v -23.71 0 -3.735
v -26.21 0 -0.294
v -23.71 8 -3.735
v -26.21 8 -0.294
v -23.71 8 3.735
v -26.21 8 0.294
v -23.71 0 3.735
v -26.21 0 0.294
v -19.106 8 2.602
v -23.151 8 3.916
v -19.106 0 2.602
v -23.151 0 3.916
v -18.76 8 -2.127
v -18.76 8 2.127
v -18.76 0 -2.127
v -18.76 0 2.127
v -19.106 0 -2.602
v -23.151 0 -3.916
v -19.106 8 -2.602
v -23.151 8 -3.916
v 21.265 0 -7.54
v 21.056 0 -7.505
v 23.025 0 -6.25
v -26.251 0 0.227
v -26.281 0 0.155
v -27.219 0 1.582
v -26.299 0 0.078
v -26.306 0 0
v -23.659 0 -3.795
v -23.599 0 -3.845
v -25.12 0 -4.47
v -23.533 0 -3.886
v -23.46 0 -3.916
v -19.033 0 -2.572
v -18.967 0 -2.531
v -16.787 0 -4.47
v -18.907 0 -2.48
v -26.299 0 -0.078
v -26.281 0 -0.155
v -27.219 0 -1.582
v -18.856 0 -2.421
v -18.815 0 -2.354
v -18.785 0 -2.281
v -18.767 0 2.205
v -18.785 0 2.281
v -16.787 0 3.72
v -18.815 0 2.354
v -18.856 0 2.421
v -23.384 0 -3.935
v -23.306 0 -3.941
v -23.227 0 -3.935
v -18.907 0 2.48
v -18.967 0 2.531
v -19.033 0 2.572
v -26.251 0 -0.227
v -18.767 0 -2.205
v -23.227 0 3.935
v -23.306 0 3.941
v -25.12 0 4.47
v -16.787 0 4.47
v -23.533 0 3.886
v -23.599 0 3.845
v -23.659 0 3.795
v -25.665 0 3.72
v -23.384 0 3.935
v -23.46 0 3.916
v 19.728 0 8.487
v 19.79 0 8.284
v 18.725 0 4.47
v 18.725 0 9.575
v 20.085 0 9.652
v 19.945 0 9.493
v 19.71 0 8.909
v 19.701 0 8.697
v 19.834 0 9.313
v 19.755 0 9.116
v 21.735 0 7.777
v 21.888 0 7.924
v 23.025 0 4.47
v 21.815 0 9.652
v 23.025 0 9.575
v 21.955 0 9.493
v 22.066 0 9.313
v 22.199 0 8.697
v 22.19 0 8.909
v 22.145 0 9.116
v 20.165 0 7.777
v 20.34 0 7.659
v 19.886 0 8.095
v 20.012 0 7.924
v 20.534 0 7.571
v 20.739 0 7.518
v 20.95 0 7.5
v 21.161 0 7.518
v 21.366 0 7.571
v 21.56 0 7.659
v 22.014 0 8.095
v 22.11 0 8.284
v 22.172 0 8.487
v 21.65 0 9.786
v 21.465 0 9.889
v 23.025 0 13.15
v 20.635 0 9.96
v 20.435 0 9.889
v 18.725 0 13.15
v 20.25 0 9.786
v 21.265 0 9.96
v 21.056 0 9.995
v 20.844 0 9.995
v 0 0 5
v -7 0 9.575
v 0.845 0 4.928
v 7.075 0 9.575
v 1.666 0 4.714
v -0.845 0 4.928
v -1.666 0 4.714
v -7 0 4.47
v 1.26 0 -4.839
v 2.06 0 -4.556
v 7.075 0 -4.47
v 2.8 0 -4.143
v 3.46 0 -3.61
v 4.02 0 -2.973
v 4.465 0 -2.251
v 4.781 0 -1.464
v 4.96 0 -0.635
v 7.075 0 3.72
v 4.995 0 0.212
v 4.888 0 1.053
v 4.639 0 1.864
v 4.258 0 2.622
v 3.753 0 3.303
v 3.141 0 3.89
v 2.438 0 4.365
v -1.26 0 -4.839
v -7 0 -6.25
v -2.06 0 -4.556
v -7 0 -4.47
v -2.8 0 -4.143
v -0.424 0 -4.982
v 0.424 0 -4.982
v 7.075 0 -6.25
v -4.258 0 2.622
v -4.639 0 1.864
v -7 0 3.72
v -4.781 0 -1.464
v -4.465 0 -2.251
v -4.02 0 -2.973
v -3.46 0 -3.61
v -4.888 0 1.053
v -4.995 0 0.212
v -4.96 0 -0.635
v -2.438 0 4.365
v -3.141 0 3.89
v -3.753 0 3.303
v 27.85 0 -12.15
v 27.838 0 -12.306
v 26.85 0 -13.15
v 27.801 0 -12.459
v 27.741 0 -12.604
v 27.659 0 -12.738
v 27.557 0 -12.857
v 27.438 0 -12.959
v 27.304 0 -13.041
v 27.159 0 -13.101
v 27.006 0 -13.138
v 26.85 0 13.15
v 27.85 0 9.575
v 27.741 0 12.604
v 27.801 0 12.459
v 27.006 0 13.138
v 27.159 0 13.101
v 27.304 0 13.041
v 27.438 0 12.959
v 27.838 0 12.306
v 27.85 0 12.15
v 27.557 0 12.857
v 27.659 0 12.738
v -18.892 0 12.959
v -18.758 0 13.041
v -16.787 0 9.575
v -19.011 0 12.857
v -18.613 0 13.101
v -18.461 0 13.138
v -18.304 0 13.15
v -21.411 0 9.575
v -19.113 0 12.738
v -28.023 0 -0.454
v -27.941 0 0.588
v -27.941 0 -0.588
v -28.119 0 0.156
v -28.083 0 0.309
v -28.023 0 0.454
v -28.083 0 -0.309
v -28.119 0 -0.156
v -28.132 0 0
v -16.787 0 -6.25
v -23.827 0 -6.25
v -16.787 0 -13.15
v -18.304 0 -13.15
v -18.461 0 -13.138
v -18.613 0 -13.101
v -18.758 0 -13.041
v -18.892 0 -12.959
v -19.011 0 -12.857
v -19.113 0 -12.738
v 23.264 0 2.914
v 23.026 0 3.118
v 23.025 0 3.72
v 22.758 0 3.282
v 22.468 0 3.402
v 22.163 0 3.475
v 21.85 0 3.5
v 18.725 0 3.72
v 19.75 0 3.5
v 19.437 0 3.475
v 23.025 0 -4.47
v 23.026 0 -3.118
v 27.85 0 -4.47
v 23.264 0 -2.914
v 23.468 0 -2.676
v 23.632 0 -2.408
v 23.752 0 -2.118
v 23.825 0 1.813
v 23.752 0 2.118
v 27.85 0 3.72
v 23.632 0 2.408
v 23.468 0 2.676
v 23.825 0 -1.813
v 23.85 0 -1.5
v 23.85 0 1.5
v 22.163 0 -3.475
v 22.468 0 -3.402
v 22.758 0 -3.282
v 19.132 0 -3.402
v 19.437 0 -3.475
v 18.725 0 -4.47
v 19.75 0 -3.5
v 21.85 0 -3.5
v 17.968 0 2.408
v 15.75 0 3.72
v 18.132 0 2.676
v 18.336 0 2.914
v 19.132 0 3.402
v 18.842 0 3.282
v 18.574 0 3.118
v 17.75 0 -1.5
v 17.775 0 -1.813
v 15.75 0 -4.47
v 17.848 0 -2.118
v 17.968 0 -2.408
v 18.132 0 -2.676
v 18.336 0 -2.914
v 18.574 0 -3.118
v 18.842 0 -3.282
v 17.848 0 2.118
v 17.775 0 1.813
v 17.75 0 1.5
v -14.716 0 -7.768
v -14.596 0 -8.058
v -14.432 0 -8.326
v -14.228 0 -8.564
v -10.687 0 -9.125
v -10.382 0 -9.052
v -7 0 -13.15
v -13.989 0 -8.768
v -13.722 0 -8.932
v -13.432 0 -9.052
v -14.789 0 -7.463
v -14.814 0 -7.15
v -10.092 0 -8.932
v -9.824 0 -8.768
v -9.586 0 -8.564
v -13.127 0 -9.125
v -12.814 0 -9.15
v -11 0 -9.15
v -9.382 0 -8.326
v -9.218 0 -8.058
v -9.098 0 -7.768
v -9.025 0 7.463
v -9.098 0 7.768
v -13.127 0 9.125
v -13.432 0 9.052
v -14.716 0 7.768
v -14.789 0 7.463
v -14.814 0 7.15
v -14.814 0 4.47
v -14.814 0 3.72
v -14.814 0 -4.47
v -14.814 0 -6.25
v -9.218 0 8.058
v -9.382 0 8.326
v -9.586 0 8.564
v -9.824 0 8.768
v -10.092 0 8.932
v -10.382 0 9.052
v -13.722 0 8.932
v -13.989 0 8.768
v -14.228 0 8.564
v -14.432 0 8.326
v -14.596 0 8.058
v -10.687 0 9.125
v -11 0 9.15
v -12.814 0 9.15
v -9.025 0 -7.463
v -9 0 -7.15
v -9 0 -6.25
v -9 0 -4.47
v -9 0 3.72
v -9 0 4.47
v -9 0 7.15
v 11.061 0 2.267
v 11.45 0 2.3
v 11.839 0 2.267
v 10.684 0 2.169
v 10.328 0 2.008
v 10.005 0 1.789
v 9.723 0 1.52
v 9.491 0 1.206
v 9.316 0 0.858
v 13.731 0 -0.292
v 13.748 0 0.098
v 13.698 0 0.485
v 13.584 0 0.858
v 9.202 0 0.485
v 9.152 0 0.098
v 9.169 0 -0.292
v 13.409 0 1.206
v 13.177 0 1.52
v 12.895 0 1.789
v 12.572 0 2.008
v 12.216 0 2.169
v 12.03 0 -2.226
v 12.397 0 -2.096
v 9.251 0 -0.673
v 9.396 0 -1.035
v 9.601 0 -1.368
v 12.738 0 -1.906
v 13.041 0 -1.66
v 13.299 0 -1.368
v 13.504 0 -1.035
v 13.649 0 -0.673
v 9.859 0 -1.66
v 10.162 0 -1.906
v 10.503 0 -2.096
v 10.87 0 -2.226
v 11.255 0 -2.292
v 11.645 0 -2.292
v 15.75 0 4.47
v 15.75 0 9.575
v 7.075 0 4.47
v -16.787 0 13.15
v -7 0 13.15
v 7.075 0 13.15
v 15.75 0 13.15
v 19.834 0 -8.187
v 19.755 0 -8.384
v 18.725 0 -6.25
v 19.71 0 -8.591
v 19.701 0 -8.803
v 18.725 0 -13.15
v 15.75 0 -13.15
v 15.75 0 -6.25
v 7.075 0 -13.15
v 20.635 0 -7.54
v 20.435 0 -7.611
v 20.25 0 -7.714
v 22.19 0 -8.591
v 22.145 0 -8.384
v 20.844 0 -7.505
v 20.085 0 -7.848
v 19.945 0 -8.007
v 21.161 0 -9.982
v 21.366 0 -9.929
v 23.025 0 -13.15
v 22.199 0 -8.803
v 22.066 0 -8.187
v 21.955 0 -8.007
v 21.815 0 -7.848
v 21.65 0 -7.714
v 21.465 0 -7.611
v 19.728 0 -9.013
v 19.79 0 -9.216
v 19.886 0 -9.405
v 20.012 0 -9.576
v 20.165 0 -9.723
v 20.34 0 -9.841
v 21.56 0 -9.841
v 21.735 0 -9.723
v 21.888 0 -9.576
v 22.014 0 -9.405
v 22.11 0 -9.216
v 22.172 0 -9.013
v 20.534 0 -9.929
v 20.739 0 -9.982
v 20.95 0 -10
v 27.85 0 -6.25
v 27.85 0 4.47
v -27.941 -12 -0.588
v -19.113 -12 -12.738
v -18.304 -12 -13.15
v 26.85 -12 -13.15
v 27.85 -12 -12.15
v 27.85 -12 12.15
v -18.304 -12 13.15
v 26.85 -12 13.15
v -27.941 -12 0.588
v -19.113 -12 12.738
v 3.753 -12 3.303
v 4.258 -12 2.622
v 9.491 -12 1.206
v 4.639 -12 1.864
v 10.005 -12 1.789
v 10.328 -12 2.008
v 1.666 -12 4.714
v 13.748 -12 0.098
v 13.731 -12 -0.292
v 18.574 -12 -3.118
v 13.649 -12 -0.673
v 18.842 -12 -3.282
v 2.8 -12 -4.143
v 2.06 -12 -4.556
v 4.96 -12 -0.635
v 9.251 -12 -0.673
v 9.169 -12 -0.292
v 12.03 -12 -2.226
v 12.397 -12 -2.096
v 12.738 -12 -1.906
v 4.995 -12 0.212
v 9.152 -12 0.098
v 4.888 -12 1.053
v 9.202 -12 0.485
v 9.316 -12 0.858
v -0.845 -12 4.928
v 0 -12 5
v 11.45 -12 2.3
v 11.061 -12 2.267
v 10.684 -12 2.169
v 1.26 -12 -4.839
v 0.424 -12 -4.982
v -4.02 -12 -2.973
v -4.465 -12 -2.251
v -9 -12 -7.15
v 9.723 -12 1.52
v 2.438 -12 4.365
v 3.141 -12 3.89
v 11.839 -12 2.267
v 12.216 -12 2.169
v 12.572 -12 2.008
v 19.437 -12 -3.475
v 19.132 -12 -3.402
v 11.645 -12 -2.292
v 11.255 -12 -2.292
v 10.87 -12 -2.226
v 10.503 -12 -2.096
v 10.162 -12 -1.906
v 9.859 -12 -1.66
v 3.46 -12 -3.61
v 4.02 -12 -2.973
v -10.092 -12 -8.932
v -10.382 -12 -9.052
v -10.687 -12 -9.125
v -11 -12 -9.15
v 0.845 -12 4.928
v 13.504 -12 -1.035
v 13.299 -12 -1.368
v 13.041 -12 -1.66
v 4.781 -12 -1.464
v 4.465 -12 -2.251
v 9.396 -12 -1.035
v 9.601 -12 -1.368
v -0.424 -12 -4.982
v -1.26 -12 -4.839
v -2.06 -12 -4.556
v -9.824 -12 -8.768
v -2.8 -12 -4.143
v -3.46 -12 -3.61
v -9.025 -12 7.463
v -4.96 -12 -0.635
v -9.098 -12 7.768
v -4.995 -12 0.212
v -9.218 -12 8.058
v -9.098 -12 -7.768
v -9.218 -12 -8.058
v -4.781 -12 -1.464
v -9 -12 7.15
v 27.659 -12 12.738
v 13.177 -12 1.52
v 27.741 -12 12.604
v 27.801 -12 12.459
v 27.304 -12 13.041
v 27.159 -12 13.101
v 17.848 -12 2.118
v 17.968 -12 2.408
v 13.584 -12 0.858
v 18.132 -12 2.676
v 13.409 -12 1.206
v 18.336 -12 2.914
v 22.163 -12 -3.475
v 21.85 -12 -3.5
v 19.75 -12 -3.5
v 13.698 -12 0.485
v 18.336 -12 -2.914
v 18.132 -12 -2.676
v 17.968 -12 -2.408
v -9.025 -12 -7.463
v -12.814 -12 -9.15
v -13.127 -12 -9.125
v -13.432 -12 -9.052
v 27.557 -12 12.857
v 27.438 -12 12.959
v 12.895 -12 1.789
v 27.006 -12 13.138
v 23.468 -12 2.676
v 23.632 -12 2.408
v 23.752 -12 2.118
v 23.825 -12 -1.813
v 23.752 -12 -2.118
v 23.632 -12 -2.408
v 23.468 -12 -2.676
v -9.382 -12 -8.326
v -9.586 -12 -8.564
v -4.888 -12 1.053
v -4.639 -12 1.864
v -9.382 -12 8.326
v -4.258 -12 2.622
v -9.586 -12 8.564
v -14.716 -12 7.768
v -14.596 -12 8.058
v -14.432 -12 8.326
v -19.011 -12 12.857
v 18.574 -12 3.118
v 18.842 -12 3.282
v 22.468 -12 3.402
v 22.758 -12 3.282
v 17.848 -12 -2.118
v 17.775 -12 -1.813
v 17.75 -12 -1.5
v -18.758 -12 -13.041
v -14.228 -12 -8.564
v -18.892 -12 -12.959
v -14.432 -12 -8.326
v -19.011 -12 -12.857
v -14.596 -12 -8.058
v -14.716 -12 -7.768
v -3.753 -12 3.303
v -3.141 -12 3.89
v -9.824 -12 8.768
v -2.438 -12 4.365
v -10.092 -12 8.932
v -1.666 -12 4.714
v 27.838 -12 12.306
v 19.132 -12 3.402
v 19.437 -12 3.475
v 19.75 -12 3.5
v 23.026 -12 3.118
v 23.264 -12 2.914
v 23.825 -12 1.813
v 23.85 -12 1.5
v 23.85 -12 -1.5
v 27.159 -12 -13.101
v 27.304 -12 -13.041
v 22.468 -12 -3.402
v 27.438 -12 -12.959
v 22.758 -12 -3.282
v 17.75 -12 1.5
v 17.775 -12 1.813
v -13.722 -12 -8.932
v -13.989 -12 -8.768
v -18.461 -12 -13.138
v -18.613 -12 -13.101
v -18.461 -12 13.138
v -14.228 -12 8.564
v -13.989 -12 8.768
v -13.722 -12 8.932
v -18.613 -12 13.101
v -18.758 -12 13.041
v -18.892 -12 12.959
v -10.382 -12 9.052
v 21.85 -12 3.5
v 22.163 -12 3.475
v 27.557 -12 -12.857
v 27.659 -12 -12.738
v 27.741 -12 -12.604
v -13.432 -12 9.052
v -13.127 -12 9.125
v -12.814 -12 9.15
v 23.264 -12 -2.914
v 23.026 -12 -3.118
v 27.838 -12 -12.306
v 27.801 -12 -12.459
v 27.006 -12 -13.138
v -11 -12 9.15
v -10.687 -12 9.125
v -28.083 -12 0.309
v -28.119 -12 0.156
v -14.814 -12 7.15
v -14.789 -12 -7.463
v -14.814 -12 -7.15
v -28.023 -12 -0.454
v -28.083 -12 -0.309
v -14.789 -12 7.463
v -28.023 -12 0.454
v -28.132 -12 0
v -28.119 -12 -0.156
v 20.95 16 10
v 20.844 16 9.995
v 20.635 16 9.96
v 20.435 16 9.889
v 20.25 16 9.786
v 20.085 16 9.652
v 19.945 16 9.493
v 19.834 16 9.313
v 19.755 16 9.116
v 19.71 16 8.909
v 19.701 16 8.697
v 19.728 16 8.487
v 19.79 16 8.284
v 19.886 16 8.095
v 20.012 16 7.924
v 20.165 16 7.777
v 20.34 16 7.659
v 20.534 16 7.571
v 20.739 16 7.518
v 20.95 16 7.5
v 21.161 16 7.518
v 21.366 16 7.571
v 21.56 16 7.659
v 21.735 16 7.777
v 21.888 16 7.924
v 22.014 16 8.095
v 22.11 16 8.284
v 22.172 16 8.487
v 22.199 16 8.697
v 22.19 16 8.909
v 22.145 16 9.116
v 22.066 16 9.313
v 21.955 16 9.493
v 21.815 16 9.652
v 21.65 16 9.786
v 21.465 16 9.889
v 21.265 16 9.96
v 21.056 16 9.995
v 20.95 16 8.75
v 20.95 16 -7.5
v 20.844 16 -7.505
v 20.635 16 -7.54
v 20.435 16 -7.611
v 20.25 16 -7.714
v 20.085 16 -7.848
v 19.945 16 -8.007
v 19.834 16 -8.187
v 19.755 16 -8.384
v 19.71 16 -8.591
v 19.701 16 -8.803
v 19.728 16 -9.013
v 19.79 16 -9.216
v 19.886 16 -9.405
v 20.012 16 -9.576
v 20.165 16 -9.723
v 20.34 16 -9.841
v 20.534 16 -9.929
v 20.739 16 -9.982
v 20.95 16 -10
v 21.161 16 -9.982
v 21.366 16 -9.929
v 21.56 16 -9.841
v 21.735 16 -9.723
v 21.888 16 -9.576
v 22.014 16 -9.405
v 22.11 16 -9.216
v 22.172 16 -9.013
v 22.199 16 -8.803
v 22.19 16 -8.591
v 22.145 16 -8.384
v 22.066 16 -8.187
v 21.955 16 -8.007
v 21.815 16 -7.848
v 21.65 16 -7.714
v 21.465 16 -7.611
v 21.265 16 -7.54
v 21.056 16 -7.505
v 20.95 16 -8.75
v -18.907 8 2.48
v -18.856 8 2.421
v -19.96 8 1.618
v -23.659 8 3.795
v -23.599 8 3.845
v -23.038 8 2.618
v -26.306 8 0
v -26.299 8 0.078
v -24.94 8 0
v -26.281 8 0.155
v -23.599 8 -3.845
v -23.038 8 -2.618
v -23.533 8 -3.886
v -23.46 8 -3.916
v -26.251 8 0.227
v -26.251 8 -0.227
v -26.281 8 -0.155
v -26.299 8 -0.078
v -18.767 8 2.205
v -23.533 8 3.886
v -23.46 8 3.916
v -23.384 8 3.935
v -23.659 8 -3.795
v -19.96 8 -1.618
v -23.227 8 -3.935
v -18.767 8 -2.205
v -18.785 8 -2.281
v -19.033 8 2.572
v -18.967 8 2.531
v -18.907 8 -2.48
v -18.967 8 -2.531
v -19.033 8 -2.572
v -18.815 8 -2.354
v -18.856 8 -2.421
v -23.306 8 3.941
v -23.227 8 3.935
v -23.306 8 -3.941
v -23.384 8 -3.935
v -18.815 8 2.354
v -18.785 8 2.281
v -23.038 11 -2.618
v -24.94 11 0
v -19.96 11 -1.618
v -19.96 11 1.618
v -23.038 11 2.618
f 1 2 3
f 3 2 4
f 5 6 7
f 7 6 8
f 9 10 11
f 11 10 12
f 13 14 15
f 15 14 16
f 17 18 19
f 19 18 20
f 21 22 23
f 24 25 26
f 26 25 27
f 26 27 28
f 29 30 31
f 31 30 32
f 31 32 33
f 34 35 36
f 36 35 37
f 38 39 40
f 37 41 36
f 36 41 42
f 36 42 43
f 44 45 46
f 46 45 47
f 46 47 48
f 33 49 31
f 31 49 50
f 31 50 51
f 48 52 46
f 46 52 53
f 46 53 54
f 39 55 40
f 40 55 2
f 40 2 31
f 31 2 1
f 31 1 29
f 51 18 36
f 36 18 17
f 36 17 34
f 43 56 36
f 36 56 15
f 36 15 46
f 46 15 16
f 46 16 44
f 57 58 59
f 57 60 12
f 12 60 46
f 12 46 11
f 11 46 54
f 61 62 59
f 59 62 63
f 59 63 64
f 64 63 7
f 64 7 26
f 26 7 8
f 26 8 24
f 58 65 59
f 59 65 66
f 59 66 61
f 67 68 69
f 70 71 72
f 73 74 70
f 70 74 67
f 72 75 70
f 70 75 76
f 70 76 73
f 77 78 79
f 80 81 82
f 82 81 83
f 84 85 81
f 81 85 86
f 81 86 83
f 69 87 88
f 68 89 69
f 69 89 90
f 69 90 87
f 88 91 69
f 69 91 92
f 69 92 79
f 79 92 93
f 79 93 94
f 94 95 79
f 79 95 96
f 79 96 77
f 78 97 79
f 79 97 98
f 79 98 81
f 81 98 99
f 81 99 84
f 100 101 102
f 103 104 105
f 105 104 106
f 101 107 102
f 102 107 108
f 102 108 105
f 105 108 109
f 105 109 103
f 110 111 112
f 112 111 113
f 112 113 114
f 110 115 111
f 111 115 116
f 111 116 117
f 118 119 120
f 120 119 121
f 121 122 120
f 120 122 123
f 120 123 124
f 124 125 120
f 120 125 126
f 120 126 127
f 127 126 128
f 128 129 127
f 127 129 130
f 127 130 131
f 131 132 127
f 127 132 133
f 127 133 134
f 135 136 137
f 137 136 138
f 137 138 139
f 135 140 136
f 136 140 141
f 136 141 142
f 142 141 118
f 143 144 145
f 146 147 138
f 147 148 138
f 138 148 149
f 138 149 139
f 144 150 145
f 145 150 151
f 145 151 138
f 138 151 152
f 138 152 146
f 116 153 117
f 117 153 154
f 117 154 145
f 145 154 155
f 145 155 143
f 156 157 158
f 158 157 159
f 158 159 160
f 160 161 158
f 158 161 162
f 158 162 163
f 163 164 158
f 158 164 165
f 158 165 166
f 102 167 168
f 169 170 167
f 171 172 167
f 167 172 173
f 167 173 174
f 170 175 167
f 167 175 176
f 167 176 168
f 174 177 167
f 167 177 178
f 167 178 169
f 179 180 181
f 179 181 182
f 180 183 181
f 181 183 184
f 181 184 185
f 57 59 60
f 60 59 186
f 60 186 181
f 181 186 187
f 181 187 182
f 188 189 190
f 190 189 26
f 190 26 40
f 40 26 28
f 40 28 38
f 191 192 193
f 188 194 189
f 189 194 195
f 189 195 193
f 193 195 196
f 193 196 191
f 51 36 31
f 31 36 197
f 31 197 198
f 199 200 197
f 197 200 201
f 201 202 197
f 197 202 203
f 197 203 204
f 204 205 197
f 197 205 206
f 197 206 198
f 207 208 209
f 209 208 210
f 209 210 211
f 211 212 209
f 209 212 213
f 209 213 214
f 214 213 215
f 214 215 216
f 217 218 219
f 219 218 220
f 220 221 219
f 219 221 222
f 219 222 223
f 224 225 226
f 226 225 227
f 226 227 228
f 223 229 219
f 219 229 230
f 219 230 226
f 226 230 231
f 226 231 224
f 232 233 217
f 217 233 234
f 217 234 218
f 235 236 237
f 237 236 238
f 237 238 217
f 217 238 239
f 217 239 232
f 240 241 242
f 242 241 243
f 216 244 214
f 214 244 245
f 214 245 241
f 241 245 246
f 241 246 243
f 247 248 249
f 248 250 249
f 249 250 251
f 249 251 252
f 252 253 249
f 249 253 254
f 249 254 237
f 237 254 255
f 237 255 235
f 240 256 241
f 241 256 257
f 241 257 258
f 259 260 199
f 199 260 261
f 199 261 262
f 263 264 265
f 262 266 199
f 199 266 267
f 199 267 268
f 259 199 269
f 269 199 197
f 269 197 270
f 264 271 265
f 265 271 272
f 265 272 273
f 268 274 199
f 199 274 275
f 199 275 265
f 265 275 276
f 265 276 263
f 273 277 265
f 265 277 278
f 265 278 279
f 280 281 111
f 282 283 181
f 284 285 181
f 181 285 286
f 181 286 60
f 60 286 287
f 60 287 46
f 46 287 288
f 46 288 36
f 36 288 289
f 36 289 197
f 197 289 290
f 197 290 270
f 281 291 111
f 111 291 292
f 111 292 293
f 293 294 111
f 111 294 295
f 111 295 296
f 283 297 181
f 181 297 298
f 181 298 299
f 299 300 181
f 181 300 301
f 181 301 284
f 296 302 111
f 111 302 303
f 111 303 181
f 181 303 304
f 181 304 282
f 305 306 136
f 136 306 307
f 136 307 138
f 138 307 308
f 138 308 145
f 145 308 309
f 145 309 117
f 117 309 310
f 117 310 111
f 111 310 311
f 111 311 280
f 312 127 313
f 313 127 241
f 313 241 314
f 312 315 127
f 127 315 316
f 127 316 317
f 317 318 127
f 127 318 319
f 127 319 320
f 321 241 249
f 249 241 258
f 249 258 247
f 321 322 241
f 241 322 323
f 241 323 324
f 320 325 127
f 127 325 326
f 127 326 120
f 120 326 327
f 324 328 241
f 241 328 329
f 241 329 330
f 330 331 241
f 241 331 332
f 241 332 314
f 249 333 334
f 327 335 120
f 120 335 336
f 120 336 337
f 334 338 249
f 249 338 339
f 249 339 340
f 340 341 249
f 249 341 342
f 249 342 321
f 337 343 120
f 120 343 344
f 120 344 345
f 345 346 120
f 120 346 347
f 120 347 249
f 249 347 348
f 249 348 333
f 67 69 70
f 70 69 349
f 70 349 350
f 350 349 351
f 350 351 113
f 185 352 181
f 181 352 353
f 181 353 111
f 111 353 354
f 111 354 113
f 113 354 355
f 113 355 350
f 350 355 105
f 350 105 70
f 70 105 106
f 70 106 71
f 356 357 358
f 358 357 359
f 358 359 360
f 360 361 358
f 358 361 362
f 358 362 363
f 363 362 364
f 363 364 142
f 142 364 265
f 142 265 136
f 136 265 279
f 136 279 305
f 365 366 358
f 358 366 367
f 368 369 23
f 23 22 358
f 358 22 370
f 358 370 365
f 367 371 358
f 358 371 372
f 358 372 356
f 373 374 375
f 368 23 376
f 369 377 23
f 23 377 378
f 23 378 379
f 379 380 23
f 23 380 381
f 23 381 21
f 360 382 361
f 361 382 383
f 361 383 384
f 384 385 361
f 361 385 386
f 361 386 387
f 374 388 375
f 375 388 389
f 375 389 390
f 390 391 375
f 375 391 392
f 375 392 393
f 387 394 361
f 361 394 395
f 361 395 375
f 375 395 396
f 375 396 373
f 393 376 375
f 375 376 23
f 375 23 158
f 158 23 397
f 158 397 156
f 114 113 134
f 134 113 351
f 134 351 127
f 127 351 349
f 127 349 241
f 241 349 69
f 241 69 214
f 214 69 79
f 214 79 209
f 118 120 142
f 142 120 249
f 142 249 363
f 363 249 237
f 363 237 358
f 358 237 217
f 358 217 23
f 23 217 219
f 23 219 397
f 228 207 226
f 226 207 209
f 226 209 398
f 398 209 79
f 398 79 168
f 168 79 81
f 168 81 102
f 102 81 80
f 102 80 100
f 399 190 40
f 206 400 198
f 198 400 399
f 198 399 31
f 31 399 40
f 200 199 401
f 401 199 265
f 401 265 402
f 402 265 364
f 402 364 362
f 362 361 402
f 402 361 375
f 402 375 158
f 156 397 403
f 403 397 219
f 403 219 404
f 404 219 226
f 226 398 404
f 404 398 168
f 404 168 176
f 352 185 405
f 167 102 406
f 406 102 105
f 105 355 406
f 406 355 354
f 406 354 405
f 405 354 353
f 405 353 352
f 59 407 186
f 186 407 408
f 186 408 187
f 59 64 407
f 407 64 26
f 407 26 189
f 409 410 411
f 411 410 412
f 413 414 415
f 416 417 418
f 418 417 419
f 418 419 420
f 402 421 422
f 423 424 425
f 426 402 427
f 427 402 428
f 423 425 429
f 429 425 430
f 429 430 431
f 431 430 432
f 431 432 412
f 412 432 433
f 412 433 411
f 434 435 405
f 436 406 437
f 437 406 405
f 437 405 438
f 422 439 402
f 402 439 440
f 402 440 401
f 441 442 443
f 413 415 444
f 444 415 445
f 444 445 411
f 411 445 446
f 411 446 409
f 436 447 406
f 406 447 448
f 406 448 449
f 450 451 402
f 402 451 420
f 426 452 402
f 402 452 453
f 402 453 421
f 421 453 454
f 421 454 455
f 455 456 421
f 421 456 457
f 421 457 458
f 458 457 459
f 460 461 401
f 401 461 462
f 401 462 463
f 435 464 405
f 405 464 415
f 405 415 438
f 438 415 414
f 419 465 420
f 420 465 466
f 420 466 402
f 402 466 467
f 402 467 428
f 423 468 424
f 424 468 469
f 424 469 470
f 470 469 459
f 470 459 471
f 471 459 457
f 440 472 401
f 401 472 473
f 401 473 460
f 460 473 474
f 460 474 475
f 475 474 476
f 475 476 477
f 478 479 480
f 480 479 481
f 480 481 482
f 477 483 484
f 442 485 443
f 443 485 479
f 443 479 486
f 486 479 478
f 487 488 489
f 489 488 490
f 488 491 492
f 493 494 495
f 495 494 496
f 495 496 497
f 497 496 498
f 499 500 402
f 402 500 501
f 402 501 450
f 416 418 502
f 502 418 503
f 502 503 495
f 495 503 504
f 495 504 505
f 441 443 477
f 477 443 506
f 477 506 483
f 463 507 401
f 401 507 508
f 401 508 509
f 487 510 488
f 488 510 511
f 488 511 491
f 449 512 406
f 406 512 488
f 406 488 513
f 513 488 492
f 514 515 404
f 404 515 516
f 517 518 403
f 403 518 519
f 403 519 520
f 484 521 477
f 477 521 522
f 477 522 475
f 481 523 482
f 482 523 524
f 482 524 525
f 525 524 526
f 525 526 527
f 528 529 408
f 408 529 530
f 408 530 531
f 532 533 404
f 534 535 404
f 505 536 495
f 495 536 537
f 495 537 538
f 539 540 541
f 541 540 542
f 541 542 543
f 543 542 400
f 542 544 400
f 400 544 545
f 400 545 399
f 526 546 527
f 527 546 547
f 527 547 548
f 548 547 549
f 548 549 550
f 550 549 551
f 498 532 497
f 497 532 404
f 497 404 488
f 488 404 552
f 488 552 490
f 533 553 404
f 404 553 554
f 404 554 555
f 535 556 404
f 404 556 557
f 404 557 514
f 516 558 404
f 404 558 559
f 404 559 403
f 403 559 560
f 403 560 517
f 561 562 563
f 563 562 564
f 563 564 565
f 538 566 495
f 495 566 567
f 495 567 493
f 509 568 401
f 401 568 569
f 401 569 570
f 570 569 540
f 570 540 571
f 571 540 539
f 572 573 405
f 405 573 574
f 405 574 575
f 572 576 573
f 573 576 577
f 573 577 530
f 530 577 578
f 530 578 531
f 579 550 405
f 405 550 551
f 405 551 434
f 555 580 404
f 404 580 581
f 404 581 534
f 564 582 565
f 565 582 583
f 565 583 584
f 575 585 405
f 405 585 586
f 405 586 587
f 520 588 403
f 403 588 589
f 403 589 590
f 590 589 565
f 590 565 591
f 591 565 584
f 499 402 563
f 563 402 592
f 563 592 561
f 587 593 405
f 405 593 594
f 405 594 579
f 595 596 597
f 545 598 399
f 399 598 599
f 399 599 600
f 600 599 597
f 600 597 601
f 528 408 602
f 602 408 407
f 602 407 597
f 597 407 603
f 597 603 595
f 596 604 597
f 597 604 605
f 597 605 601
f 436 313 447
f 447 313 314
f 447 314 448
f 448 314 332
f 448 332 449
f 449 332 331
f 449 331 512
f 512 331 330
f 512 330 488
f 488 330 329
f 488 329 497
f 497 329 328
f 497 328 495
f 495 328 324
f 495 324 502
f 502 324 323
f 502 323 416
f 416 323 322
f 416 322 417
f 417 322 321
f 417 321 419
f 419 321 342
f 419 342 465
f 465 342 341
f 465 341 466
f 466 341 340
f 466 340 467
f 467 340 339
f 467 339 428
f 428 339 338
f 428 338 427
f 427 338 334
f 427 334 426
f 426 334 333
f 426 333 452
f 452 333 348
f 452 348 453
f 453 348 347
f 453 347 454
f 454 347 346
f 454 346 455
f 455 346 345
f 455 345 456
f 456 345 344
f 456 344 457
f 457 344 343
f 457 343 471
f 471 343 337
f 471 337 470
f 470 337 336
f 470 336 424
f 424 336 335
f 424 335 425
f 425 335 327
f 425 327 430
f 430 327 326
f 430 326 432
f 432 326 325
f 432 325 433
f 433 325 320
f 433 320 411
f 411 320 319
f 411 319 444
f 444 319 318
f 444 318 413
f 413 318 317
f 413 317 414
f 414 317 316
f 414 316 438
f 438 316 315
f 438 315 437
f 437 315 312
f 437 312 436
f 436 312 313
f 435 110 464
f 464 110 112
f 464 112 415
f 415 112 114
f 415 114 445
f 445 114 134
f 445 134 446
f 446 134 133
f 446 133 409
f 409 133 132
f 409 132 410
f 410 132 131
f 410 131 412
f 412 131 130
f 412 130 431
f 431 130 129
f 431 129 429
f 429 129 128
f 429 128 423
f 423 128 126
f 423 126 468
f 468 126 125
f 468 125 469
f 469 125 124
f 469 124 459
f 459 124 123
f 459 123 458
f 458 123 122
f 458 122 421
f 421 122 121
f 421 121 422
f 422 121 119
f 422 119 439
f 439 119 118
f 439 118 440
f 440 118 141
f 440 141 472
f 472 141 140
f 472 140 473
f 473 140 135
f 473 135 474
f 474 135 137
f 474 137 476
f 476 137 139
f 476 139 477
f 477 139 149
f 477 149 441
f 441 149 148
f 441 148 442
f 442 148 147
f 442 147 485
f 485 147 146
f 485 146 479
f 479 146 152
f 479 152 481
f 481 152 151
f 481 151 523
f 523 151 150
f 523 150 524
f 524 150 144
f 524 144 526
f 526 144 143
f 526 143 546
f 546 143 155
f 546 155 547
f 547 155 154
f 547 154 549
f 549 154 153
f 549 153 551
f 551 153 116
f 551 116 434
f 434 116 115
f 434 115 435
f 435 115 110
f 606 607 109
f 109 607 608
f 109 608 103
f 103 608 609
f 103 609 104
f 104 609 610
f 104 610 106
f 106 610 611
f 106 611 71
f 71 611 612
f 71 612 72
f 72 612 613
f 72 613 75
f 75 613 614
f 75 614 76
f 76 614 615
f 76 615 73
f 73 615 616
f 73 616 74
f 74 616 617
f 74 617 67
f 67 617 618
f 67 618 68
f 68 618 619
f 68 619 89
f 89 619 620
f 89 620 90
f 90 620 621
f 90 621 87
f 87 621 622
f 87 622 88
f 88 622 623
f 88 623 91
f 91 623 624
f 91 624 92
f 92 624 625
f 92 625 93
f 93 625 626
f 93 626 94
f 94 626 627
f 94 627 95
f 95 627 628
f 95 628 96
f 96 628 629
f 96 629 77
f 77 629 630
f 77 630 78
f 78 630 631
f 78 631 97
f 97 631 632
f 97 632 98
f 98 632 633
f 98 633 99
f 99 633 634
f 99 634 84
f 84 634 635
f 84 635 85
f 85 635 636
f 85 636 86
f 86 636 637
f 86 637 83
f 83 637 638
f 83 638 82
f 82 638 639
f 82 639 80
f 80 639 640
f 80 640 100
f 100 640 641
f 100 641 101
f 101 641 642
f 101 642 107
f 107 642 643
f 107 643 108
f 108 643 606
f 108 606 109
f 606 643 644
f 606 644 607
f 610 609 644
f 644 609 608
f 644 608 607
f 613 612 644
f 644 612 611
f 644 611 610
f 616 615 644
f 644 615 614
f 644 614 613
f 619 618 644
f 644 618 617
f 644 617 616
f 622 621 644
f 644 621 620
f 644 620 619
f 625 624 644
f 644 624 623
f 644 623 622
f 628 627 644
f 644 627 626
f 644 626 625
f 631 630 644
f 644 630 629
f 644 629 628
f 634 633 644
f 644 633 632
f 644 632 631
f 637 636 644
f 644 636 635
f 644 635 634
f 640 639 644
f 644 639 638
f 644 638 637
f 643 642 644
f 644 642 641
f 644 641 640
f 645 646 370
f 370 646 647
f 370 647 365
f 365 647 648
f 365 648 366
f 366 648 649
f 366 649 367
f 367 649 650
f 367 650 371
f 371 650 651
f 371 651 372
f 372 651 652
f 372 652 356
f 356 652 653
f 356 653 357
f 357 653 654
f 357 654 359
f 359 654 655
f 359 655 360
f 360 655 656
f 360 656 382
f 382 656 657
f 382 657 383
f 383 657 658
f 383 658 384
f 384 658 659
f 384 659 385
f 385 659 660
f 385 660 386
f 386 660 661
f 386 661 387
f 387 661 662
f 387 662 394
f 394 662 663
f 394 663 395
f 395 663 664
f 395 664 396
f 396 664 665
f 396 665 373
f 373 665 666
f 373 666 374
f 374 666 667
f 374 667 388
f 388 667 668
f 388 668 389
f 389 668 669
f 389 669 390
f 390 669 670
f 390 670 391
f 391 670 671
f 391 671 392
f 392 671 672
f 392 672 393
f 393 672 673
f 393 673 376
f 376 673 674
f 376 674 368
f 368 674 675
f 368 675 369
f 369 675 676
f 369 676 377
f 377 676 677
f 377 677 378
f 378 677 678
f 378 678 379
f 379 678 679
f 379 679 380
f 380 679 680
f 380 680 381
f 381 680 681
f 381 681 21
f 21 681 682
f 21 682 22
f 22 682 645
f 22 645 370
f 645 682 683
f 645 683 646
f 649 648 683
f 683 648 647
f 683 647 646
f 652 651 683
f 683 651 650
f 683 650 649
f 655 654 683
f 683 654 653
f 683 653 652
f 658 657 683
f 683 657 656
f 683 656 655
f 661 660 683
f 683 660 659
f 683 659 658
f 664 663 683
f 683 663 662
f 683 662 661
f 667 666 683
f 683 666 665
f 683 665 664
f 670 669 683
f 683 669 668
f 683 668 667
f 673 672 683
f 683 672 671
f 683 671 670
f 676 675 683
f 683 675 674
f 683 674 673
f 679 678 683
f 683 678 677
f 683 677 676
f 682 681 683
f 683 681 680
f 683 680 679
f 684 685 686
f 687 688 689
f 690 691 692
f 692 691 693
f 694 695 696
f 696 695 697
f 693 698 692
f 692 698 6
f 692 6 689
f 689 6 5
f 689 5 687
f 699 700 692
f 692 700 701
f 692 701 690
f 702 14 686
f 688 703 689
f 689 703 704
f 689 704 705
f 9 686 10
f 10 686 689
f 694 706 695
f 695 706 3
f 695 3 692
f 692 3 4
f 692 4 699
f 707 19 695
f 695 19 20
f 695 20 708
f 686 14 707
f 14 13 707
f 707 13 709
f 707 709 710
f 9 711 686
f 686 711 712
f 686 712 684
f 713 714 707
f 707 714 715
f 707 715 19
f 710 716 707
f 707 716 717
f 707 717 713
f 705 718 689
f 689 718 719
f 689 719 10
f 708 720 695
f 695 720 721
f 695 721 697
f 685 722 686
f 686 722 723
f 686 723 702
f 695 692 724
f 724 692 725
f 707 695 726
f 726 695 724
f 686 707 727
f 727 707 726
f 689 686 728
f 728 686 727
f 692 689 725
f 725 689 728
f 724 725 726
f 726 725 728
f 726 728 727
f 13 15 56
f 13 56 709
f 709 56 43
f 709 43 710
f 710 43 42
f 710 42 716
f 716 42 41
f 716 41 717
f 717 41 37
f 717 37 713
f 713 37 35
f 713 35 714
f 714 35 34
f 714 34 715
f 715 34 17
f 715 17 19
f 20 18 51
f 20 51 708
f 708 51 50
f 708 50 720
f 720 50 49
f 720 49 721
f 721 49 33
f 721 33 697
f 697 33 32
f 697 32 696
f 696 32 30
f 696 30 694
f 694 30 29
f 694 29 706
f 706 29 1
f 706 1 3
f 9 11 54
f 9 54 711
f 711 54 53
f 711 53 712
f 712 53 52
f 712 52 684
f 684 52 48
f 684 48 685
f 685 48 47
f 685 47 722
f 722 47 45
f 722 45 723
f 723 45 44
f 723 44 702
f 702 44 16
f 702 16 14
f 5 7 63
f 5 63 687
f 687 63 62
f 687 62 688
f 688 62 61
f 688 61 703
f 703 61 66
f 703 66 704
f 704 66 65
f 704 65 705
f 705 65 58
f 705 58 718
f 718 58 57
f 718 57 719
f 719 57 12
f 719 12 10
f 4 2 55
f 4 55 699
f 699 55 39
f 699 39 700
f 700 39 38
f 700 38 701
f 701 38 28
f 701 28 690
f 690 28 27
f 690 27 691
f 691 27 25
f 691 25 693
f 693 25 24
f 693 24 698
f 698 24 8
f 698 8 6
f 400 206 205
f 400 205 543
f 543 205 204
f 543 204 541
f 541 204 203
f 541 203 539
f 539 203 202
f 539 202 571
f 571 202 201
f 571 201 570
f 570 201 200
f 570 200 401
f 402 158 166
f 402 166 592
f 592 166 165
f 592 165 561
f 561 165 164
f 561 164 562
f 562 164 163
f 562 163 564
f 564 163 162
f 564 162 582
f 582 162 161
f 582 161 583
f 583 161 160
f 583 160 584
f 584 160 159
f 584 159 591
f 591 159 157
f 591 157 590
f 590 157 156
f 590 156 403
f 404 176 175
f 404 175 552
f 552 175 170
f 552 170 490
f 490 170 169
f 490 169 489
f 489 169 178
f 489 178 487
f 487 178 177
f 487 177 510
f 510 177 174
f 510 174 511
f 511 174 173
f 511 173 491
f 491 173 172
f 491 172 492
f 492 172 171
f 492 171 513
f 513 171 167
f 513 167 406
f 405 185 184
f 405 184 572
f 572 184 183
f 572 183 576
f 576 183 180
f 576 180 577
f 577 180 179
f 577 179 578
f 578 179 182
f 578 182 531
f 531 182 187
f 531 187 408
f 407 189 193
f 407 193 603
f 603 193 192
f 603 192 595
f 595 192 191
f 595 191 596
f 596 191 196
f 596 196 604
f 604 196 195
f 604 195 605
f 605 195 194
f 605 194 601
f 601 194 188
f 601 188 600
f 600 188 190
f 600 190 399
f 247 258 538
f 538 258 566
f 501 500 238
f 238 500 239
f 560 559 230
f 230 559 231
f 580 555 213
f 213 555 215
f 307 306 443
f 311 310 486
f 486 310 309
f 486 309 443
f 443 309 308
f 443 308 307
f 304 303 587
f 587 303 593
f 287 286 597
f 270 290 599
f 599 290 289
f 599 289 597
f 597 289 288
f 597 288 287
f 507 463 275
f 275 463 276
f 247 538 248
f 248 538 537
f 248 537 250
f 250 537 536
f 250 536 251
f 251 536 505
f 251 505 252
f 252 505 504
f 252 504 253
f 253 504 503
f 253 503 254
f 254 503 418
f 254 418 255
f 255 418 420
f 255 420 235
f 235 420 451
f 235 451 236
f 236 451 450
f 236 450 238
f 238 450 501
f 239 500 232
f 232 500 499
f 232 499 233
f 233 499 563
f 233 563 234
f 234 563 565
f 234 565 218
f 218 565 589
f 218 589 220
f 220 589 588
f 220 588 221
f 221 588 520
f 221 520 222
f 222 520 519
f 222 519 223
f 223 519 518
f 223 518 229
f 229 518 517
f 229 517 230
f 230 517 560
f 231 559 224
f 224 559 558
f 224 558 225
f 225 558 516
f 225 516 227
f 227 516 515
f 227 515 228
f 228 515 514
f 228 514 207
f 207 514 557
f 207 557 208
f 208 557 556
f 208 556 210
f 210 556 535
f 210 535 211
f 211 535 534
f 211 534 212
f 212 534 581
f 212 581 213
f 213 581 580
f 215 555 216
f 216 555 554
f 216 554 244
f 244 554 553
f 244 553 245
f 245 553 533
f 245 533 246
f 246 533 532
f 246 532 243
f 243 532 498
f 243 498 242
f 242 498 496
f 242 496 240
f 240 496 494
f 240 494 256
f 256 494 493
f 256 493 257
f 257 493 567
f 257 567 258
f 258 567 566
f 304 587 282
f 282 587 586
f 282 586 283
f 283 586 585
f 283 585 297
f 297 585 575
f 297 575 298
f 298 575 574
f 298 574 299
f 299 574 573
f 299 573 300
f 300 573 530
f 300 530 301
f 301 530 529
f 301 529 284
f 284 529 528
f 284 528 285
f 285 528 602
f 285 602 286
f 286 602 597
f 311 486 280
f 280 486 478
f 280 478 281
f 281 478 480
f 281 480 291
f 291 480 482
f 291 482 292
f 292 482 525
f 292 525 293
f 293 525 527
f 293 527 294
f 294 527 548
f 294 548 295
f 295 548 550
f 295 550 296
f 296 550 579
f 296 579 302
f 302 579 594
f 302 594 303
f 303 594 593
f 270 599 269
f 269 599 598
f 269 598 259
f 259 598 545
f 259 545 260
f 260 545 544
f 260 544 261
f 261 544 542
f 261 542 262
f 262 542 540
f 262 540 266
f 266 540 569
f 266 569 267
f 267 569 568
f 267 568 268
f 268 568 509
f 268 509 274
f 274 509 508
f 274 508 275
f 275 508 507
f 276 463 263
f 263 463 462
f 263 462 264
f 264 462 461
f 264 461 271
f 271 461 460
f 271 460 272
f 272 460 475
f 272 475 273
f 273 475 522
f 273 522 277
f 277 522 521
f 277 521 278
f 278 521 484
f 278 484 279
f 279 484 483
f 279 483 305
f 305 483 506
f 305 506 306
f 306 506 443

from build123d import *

# Parameters (mm, degrees)
BOSS_EXTRUDE2_DEPTH = 12
SKETCH3_R           = 5
SKETCH3_R_2         = 2.3
CUT_EXTRUDE1_DEPTH  = 13
SKETCH5_R           = 1.25
BOSS_EXTRUDE3_DEPTH = 16
BOSS_EXTRUDE4_DEPTH = 11
CUT_EXTRUDE2_DEPTH  = 3
FILLET1_R           = 0.5
FILLET2_R           = 1
SKETCH9_W           = 5.813805644
SKETCH9_H           = 18.3
SKETCH9_W_2         = 6.1
SKETCH9_H_2         = 7
CUT_EXTRUDE3_DEPTH  = 13
FILLET3_R           = 2


with BuildPart() as part:
    # Sketch1 → Boss-Extrude2 (new body)
    with BuildSketch(Plane(origin=(0, 0, 0), x_dir=(1, 0, 0), z_dir=(0, 1, 0))):
        Polygon((27.85, 13.15), (-18.275666287, 13.15), (-18.813805644, 13.15), (-28.367839887, 0), (-18.813805644, -13.15), (-18.275666287, -13.15), (27.85, -13.15), align=None)
    extrude(amount=-BOSS_EXTRUDE2_DEPTH)

    # Sketch3 → Cut-Extrude1 (cut, through all)
    with BuildSketch(Plane(origin=(0, 0, 0), x_dir=(1, 0, 0), z_dir=(0, 1, 0))):
        Circle(SKETCH3_R)
        with Locations((11.45, 0)):
            Circle(SKETCH3_R_2)
    extrude(amount=-CUT_EXTRUDE1_DEPTH, mode=Mode.SUBTRACT)

    # Sketch5 → Boss-Extrude3 (add)
    with BuildSketch(Plane(origin=(0, 0, 0), x_dir=(1, 0, 0), z_dir=(0, 1, 0))):
        with Locations((20.95, -8.75)):
            Circle(SKETCH5_R)
        with Locations((20.95, 8.75)):
            Circle(SKETCH5_R)
    extrude(amount=BOSS_EXTRUDE3_DEPTH)

    # Sketch6 → Boss-Extrude4 (add)
    with BuildSketch(Plane(origin=(0, 0, 0), x_dir=(1, 0, 0), z_dir=(0, 1, 0))):
        Polygon((-26.423567977, 0), (-23.496516994, -4.028740053), (-18.760449017, -2.489898285), (-18.760449017, 2.489898285), (-23.496516994, 4.028740053), align=None)
    extrude(amount=BOSS_EXTRUDE4_DEPTH)

    # Sketch7 → Cut-Extrude2 (cut)
    with BuildSketch(Plane(origin=(0, 11, 0), x_dir=(1, 0, 0), z_dir=(0, 1, 0))):
        Polygon((-26.423567977, 0), (-23.496516994, -4.028740053), (-18.760449017, -2.489898285), (-18.760449017, 2.489898285), (-23.496516994, 4.028740053), align=None)
        Polygon((-24.940286405, 0), (-23.038157781, -2.618055448), (-19.960449017, -1.618047251), (-19.960449017, 1.618047251), (-23.038157781, 2.618055448), align=None, mode=Mode.SUBTRACT)
    extrude(amount=-CUT_EXTRUDE2_DEPTH, mode=Mode.SUBTRACT)

    # Fillet1
    fillet1_edges = [part.edges().sort_by_distance(p)[0] for p in [
        (-23.496516994, 4, -4.028740053),
        (-18.760449017, 4, -2.489898285),
        (-18.760449017, 4, 2.489898285),
        (-23.496516994, 4, 4.028740053),
        (-26.423567977, 4, 0),
    ]]
    fillet(fillet1_edges, radius=FILLET1_R)

    # Fillet2
    fillet2_edges = [part.edges().sort_by_distance(p)[0] for p in [
        (-18.813805644, -6, -13.15),
        (27.85, -6, -13.15),
        (27.85, -6, 13.15),
        (-18.813805644, -6, 13.15),
        (-28.367839887, -6, 0),
    ]]
    fillet(fillet2_edges, radius=FILLET2_R)

    # Sketch9 → Cut-Extrude3 (cut, through all)
    with BuildSketch(Plane(origin=(0, 0, 0), x_dir=(1, 0, 0), z_dir=(0, 1, 0))):
        with Locations((-11.906902822, 0)):
            Rectangle(SKETCH9_W, SKETCH9_H)
        with Locations((20.8, 0)):
            Rectangle(SKETCH9_W_2, SKETCH9_H_2)
    extrude(amount=-CUT_EXTRUDE3_DEPTH, mode=Mode.SUBTRACT)

    # Fillet3
    fillet3_edges = [part.edges().sort_by_distance(p)[0] for p in [
        (-9, -6, -9.15),
        (-9, -6, 9.15),
        (-14.813805644, -6, 9.15),
        (-14.813805644, -6, -9.15),
        (17.75, -6, 3.5),
        (17.75, -6, -3.5),
        (23.85, -6, -3.5),
        (23.85, -6, 3.5),
    ]]
    fillet(fillet3_edges, radius=FILLET3_R)


solid = part.part
